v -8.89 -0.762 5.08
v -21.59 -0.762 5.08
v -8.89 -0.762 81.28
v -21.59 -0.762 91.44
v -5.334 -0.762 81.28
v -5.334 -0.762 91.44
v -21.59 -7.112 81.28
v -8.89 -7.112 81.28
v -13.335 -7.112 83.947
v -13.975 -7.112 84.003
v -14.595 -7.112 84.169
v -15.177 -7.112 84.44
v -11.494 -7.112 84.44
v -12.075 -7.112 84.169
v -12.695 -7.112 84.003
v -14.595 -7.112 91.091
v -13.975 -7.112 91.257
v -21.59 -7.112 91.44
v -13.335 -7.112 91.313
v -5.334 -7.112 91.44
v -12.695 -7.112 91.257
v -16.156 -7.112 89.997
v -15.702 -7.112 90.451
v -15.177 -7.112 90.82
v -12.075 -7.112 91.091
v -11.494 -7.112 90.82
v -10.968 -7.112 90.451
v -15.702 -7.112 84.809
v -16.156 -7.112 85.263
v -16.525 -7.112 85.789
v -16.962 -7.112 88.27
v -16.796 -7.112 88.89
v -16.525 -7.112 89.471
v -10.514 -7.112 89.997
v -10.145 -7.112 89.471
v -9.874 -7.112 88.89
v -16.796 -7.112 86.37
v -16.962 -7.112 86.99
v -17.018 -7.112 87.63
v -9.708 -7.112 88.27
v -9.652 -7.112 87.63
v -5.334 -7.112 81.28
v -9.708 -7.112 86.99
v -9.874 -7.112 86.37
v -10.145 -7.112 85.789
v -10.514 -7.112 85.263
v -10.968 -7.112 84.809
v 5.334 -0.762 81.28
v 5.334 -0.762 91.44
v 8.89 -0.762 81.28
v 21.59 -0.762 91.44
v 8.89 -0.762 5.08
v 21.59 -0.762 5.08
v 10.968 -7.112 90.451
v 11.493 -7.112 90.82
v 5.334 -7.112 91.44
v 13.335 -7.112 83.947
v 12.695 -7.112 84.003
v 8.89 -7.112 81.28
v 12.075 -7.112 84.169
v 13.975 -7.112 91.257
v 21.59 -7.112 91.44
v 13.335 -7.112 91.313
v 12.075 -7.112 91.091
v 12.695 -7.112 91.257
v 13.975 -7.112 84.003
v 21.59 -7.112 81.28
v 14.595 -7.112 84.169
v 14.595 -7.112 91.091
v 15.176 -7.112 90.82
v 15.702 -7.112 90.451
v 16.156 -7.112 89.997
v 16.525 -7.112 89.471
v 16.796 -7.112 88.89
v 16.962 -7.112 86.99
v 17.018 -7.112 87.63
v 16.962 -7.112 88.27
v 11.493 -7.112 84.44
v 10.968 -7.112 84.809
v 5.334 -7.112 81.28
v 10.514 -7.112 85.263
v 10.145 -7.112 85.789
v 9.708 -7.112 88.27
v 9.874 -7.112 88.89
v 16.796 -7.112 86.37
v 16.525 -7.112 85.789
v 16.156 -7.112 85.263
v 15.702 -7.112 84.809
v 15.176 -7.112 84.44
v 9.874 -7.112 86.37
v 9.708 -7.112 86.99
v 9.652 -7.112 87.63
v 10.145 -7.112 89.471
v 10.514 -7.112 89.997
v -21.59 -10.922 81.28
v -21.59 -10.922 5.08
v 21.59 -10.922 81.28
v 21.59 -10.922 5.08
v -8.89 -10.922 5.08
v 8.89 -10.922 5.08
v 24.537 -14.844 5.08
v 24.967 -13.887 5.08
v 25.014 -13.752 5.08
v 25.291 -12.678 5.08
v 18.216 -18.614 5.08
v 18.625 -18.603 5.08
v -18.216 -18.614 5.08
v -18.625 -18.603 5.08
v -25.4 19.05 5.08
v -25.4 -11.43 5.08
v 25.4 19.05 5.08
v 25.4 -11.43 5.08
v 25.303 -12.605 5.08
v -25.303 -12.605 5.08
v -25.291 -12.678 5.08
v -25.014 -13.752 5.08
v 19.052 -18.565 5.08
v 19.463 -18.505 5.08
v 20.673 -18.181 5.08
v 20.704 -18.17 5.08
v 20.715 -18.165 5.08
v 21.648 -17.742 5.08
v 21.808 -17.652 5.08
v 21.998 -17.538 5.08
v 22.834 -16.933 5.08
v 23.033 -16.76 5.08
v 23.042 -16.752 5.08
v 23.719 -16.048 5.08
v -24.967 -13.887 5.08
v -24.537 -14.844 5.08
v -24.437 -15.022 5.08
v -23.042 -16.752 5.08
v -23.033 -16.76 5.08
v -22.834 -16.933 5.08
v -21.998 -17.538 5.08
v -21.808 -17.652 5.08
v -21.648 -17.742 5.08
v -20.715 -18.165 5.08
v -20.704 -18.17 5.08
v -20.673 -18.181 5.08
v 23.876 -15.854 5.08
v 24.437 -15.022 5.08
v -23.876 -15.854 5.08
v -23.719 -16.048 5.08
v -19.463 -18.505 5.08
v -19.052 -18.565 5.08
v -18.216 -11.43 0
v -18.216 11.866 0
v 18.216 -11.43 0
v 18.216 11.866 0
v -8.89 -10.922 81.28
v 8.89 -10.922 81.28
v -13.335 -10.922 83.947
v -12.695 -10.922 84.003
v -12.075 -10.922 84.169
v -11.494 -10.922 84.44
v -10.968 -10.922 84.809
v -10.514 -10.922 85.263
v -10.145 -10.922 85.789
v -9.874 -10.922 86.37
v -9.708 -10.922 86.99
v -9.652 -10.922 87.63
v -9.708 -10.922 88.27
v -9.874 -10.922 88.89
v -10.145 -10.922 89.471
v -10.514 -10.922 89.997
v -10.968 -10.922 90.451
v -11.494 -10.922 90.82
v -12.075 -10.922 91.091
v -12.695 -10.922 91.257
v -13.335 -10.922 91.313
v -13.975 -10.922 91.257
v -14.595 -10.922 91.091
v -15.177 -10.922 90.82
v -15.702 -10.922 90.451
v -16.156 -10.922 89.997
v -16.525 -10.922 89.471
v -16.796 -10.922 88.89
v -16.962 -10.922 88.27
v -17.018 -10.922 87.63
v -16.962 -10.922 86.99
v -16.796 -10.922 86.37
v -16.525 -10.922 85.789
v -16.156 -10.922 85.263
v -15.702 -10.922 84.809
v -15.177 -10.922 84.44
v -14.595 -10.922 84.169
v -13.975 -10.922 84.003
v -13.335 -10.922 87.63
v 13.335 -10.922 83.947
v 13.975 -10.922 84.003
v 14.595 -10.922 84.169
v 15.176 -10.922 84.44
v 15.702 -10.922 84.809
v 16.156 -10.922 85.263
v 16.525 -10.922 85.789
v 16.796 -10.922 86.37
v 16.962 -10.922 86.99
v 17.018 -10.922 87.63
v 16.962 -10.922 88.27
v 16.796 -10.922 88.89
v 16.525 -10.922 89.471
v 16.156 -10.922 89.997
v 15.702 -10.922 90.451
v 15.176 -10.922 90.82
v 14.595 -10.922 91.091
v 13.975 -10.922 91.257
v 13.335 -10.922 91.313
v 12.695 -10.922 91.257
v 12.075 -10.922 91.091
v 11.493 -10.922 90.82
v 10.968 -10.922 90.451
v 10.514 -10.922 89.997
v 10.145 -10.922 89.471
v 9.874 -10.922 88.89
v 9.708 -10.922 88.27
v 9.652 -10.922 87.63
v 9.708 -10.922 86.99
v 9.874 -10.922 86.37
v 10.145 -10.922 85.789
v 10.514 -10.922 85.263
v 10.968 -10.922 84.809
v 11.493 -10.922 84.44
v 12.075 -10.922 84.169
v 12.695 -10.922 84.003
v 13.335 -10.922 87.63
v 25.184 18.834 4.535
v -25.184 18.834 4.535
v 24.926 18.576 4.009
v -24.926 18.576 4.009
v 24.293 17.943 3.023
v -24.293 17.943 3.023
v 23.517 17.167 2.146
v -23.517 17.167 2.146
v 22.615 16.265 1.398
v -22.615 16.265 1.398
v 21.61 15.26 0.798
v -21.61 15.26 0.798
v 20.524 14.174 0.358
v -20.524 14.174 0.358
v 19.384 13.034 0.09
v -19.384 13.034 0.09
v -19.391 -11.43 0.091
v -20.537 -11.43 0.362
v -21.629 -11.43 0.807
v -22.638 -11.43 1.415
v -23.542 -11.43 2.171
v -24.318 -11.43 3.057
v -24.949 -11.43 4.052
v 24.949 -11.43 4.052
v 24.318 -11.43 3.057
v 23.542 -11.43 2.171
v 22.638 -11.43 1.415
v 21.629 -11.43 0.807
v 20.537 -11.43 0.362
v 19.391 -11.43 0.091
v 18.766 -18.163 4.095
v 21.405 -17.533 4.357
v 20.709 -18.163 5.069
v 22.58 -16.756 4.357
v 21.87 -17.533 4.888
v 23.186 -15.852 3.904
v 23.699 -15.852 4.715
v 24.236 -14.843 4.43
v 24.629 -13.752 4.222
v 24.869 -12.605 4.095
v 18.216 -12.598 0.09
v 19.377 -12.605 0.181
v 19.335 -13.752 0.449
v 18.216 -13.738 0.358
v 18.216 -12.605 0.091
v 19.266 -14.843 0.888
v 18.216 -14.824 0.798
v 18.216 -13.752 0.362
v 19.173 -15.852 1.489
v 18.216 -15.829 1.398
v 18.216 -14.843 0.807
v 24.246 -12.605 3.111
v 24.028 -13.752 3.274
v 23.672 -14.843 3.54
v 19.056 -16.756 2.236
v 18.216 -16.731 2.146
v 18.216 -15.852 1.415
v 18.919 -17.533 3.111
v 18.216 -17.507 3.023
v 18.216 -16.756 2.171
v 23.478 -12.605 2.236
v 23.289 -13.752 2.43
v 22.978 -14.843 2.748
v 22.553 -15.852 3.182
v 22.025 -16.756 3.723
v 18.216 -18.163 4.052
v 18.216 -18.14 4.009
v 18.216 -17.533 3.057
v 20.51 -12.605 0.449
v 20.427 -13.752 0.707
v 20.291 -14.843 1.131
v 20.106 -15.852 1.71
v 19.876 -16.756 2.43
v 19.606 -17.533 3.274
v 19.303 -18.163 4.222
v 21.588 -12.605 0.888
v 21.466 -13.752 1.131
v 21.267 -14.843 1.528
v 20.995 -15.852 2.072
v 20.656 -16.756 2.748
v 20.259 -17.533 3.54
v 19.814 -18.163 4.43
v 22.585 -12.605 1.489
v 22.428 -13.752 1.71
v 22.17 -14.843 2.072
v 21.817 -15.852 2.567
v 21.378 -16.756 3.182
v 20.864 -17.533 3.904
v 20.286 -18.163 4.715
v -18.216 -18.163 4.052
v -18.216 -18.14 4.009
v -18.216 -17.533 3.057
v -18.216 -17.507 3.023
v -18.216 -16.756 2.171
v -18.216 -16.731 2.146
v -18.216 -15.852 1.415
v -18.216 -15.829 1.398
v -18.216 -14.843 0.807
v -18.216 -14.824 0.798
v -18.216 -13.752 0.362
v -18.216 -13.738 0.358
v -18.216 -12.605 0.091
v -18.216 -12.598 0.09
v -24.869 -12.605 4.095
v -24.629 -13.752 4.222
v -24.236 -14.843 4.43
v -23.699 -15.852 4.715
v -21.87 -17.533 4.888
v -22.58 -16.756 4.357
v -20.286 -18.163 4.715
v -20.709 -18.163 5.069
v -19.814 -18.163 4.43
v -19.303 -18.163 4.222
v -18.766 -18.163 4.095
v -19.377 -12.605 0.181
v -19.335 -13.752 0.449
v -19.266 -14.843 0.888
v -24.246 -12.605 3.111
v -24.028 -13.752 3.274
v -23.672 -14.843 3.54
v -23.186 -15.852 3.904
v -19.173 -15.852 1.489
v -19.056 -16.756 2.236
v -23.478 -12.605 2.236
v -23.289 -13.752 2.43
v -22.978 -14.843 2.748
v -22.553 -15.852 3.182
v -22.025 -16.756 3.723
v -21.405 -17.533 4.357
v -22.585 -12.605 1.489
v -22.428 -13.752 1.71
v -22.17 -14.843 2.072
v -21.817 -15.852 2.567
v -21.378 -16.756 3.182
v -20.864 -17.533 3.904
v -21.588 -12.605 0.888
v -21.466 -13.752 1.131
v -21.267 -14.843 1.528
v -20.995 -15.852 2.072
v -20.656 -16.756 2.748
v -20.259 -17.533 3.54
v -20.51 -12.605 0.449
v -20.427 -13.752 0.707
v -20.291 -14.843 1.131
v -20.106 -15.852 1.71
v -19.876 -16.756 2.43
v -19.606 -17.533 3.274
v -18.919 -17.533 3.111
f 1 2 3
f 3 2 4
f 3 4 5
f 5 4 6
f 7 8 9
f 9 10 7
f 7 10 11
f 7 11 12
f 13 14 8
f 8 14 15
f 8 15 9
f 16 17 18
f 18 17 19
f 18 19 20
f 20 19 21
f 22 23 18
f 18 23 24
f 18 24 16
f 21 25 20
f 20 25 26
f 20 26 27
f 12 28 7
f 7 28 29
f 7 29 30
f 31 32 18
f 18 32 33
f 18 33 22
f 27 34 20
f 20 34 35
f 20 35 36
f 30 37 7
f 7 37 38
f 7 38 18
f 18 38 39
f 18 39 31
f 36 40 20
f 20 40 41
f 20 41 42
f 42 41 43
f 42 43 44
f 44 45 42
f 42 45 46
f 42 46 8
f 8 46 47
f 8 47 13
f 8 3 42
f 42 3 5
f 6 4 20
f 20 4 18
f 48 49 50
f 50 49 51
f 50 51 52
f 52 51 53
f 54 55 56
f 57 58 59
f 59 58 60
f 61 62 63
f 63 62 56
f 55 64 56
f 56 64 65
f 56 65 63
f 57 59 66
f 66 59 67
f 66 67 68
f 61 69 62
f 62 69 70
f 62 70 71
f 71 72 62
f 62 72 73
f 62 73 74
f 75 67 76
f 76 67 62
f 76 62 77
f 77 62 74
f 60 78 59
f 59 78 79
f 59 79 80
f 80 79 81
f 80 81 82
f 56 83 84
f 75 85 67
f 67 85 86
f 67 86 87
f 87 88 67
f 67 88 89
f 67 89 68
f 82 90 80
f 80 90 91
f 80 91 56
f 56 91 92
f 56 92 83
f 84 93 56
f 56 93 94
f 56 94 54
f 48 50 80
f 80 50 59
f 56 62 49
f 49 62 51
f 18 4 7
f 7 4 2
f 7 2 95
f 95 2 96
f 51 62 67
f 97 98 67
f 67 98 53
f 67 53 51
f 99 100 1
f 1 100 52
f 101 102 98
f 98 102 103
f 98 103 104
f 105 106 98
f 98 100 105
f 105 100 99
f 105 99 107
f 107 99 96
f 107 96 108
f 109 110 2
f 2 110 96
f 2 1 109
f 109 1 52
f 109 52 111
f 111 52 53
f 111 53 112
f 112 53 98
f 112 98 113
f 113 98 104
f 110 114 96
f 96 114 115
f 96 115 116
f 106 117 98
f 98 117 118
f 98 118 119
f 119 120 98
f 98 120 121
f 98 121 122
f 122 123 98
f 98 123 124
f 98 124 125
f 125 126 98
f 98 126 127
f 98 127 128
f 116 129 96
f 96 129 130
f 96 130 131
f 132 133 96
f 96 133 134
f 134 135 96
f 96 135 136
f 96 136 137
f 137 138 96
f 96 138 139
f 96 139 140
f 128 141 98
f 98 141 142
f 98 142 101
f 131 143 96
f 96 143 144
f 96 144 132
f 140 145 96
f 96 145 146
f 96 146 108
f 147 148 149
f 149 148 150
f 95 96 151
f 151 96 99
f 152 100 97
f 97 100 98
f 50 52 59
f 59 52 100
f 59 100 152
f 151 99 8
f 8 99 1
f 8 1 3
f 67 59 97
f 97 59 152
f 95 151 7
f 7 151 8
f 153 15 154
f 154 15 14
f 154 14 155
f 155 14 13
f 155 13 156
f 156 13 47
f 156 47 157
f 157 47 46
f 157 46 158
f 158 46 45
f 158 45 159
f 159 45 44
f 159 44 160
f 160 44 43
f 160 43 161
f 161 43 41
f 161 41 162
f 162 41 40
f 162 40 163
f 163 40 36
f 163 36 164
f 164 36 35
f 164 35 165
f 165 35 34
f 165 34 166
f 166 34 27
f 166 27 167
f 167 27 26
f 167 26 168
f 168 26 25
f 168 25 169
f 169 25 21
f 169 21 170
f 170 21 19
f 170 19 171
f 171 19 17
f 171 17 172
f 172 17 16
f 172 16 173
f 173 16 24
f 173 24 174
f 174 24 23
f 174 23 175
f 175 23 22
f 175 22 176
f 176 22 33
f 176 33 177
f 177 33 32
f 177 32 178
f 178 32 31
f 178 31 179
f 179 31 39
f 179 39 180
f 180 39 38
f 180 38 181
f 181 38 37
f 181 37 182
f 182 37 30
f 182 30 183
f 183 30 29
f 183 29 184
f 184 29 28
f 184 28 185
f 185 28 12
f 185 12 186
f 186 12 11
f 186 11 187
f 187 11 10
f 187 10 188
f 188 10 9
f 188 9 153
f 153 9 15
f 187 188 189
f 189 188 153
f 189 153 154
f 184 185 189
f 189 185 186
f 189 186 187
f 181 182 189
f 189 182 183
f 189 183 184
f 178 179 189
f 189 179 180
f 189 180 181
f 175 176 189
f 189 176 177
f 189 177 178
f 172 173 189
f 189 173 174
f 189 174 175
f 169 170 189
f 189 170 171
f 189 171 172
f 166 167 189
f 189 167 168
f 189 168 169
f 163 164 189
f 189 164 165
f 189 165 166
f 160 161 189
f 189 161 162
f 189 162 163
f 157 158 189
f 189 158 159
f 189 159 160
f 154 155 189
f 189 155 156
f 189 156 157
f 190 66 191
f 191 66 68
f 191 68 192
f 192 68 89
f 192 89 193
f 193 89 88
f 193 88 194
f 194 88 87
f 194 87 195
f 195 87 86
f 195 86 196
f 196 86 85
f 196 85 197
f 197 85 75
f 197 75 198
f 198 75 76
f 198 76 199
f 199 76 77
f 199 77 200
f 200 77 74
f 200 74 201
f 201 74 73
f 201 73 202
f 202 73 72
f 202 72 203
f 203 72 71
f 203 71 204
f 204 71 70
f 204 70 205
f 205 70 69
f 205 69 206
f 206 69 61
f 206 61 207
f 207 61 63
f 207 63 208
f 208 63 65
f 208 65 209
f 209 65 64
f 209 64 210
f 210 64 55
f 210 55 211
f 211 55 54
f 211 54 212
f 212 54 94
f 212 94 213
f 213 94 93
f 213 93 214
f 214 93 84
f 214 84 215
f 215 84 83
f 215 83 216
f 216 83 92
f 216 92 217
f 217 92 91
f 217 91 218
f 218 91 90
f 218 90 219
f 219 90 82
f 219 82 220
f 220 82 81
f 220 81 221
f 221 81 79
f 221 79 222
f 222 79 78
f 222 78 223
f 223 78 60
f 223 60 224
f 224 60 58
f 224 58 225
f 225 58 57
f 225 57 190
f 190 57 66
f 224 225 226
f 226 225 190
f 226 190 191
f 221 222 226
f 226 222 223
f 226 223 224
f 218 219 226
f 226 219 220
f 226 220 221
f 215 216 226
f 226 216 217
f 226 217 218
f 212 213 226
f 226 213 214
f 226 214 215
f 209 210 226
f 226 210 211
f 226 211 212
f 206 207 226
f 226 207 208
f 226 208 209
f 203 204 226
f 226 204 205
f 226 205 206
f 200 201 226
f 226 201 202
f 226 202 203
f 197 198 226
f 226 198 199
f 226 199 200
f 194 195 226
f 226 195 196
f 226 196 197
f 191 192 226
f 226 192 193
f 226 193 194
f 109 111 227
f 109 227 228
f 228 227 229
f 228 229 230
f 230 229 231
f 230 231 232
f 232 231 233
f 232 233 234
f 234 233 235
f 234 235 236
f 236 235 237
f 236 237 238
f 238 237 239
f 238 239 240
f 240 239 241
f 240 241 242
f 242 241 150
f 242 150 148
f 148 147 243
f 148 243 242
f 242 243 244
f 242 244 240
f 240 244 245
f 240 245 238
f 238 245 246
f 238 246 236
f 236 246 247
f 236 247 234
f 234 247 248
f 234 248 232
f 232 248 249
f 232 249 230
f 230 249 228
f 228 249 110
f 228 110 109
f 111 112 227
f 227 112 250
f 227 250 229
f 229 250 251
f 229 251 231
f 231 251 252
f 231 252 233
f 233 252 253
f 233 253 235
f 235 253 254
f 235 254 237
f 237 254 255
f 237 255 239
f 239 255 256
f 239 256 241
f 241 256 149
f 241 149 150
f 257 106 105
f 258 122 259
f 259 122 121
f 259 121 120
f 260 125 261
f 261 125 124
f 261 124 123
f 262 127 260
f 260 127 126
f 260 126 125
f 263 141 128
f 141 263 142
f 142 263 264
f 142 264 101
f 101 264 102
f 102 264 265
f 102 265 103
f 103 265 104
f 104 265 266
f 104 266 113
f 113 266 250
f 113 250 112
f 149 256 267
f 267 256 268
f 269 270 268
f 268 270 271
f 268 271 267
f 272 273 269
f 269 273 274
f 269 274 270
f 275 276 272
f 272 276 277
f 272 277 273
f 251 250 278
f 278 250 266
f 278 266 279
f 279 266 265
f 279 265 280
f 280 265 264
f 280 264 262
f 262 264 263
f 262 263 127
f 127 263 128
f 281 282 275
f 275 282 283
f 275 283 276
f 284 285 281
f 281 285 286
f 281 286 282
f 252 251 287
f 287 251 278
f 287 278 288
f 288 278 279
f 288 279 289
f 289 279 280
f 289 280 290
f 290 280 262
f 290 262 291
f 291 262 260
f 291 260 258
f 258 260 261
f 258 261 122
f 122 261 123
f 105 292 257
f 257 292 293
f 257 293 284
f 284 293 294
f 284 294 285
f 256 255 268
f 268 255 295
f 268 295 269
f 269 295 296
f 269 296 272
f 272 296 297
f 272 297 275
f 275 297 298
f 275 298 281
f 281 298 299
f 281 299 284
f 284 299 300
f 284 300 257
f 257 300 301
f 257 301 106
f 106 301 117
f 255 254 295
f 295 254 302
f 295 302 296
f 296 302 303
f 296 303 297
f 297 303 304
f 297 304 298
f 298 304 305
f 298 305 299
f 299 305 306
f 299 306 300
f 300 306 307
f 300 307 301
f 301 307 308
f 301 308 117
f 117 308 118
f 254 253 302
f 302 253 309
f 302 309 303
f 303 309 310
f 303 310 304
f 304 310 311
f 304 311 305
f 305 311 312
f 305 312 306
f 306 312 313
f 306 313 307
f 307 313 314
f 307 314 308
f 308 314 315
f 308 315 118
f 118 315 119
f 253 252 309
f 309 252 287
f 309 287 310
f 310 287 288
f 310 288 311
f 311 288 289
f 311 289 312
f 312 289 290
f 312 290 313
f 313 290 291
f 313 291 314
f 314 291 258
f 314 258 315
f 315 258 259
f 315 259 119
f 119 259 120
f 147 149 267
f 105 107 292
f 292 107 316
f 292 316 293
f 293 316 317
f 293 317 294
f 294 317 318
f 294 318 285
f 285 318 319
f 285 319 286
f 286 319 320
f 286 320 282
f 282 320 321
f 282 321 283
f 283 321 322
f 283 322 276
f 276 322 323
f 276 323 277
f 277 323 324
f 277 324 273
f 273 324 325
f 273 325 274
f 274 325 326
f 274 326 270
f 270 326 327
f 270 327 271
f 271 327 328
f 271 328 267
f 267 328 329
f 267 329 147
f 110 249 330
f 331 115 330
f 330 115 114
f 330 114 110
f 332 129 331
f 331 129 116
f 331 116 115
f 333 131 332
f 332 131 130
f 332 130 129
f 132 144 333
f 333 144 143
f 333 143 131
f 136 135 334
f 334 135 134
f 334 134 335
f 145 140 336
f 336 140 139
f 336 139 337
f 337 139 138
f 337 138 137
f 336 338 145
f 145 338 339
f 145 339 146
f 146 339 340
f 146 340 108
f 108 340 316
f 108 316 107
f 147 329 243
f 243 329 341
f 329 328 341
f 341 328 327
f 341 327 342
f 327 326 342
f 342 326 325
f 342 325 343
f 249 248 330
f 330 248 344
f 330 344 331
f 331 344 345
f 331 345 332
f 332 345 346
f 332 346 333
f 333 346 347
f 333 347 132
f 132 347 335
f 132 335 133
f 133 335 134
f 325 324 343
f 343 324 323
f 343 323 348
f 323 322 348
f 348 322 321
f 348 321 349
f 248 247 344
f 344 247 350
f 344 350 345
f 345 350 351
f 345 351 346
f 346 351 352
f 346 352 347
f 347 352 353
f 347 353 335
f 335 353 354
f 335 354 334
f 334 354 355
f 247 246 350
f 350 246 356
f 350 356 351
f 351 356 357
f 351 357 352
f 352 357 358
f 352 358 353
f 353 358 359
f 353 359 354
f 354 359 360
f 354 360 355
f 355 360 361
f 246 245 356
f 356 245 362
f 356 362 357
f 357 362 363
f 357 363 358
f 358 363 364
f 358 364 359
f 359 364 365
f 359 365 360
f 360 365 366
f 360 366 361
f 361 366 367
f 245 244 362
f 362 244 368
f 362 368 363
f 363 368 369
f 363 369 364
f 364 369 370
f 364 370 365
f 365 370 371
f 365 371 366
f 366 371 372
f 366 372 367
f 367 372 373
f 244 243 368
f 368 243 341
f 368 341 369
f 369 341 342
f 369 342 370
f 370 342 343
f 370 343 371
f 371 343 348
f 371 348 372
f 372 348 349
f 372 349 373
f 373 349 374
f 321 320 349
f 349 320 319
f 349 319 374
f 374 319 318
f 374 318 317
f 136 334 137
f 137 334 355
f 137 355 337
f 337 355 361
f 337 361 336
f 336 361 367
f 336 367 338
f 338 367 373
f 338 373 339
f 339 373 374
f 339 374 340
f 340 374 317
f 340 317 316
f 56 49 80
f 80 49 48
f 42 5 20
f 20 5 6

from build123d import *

# Parameters (mm, degrees)
SKETCH1_W             = 50.8
SKETCH1_H             = 38.1
BOSS_EXTRUDE1_DEPTH   = 5.08
SKETCH2_W             = 16.51
SKETCH2_H             = 10.16
BOSS_EXTRUDE2_DEPTH   = 76.2
SKETCH3_W             = 3.81
SKETCH3_H             = 10.16
CUT_EXTRUDE1_DEPTH    = 76.2
SKETCH4_W             = 16.51
SKETCH4_H             = 10.16
BOSS_EXTRUDE3_DEPTH   = 12.7
SKETCH6_W             = 16.51
SKETCH6_H             = 12.7
CUT_EXTRUDE2_DEPTH    = 3.81
SKETCH5_R             = 3.683
BOSS_EXTRUDE4_DEPTH   = 3.81
FILLET1_R             = 7.62
FILLET4_R             = 7.62
FILLET7_R             = 7.62
SKETCH7_W             = 16.51
SKETCH7_H             = 6.35
LEDGE_REDUCTION_DEPTH = 2.54
SKETCH8_W             = 10.16
SKETCH8_H             = 6.35
CUT_EXTRUDE4_DEPTH    = 0.254
SKETCH9_W             = 10.16
SKETCH9_H             = 6.35
CUT_EXTRUDE5_DEPTH    = 0.254


with BuildPart() as part:
    # Sketch1 → Boss-Extrude1 (new body)
    with BuildSketch(Plane.XY):
        Rectangle(SKETCH1_W, SKETCH1_H)
    extrude(amount=BOSS_EXTRUDE1_DEPTH)

    # Sketch2 → Boss-Extrude2 (add)
    with BuildSketch(Plane.XY.offset(5.08)):
        with Locations((-13.335, -5.842)):
            Rectangle(SKETCH2_W, SKETCH2_H)
        with Locations((13.335, -5.842)):
            Rectangle(SKETCH2_W, SKETCH2_H)
    extrude(amount=BOSS_EXTRUDE2_DEPTH)

    # Sketch3 → Cut-Extrude1 (cut)
    with BuildSketch(Plane.XY.offset(81.28)):
        with Locations((-6.985, -5.842)):
            Rectangle(SKETCH3_W, SKETCH3_H)
        with Locations((6.985, -5.842)):
            Rectangle(SKETCH3_W, SKETCH3_H)
    extrude(amount=-CUT_EXTRUDE1_DEPTH, mode=Mode.SUBTRACT)

    # Sketch4 → Boss-Extrude3 (add)
    with BuildSketch(Plane.XY.offset(81.28)):
        with Locations((-13.335, -5.842)):
            Rectangle(SKETCH4_W, SKETCH4_H)
        with Locations((13.335, -5.842)):
            Rectangle(SKETCH4_W, SKETCH4_H)
    extrude(amount=BOSS_EXTRUDE3_DEPTH)

    # Sketch6 → Cut-Extrude2 (cut)
    with BuildSketch(Plane.XZ.offset(10.922)):
        with Locations((-13.335, 87.63)):
            Rectangle(SKETCH6_W, SKETCH6_H)
        with Locations((13.335, 87.63)):
            Rectangle(SKETCH6_W, SKETCH6_H)
    extrude(amount=-CUT_EXTRUDE2_DEPTH, mode=Mode.SUBTRACT)

    # Sketch5 → Boss-Extrude4 (add)
    with BuildSketch(Plane.XZ.offset(10.922)):
        with Locations(Location((-13.335, 87.63, 0), (0, 0, 270))):
            Circle(SKETCH5_R)
        with Locations(Location((13.335, 87.63, 0), (0, 0, 270))):
            Circle(SKETCH5_R)
    extrude(amount=-BOSS_EXTRUDE4_DEPTH)

    # Fillet1
    # the kernel refuses this fillet: 7.62 mm, written as the material it takes off along each edge
    with BuildSketch(Plane(origin=(-43.360512242, 19.05, 0), x_dir=(0, -1, 0), z_dir=(1, 0, 0))) as fillet1_piece_1:
        with BuildLine():
            CenterArc((7.184204897, -7.62), FILLET1_R, 90, 70.528779366)
            Line((0, -5.08), (-0.143684098, -5.0292))
            ThreePointArc((-0.143684098, -5.0292), (-0.1524, -2.54), (-0.1524, 0))
            Line((-0.1524, 0), (0, 0.1524))
            Line((0, 0.1524), (7.184204897, 0.1524))
            Line((7.184204897, 0.1524), (7.184204897, 0))
        make_face()
    extrude(amount=86.721024484, mode=Mode.SUBTRACT)

    # Fillet4
    # the kernel refuses this fillet: 7.62 mm, written as the material it takes off along each edge
    with BuildSketch(Plane(origin=(-25.4, -37.010512242, 0), x_dir=(0, 0, 1), z_dir=(0, 1, 0)), Plane(origin=(25.4, 29.826307345, 0), x_dir=(0, 0, 1), z_dir=(0, -1, 0))) as fillet4_piece_1:
        with BuildLine():
            CenterArc((7.62, 7.184204897), FILLET4_R, 180, 70.528779366)
            Line((0, 7.184204897), (-0.1524, 7.184204897))
            Line((-0.1524, 7.184204897), (-0.1524, 0))
            Line((-0.1524, 0), (0, -0.1524))
            ThreePointArc((0, -0.1524), (2.54, -0.1524), (5.0292, -0.143684098))
            Line((5.0292, -0.143684098), (5.08, 0))
        make_face()
    extrude(amount=66.836819587, mode=Mode.SUBTRACT)

    # Fillet7
    # the kernel refuses this fillet: 7.62 mm, written as the material it takes off along each edge
    with BuildSketch(Plane(origin=(-18.215795103, -19.05, 7.62), x_dir=(0.5563472554155052, 0, 0.8309498970405103), z_dir=(0.8309498970405103, 0, -0.5563472554155052))) as fillet7_piece_1:
        with BuildLine():
            CenterArc((7.62 - FILLET7_R, -FILLET7_R), FILLET7_R, 0, 90)
            Line((7.62, -FILLET7_R), (7.62, 0))
            Line((7.62, 0), (7.62 - FILLET7_R, 0))
        make_face()
    revolve(axis=Axis((-18.215795103, -19.05, 7.62), (0, -1, 0)), revolution_arc=213.803560609, mode=Mode.SUBTRACT)
    with BuildSketch(Plane(origin=(18.215795103, -19.05, 7.62), x_dir=(-0.5563472554155037, 0, 0.8309498970405114), z_dir=(-0.8309498970405114, 0, -0.5563472554155037))) as fillet7_piece_2:
        with BuildLine():
            CenterArc((7.62 - FILLET7_R, FILLET7_R), FILLET7_R, 270, 90)
            Line((7.62, FILLET7_R), (7.62, 0))
            Line((7.62, 0), (7.62 - FILLET7_R, 0))
        make_face()
    revolve(axis=Axis((18.215795103, -19.05, 7.62), (0, 1, 0)), revolution_arc=213.803560609, mode=Mode.SUBTRACT)
    with BuildSketch(Plane(origin=(18.215795103, -19.05, 0), x_dir=(0, 0, 1), z_dir=(-1, 0, 0))) as fillet7_piece_3:
        with BuildLine():
            CenterArc((FILLET7_R, FILLET7_R), FILLET7_R, 180, 90)
            Line((0, FILLET7_R), (0, 0))
            Line((0, 0), (FILLET7_R, 0))
        make_face()
    extrude(amount=36.431590206, mode=Mode.SUBTRACT)

    # Sketch7 → ledge-reduction (cut)
    with BuildSketch(Plane.XY.offset(93.98)):
        with Locations((-13.335, -3.937)):
            Rectangle(SKETCH7_W, SKETCH7_H)
        with Locations((13.335, -3.937)):
            Rectangle(SKETCH7_W, SKETCH7_H)
    extrude(amount=-LEDGE_REDUCTION_DEPTH, mode=Mode.SUBTRACT)

    # Sketch8 → Cut-Extrude4 (cut)
    with BuildSketch(Plane.ZY.offset(-5.08)):
        with Locations((86.36, -3.937)):
            Rectangle(SKETCH8_W, SKETCH8_H)
    extrude(amount=-CUT_EXTRUDE4_DEPTH, mode=Mode.SUBTRACT)

    # Sketch9 → Cut-Extrude5 (cut)
    with BuildSketch(Plane(origin=(-5.08, 0, 0), x_dir=(0, 0, -1), z_dir=(1, 0, 0))):
        with Locations((-86.36, -3.937)):
            Rectangle(SKETCH9_W, SKETCH9_H)
    extrude(amount=-CUT_EXTRUDE5_DEPTH, mode=Mode.SUBTRACT)


solid = part.part
